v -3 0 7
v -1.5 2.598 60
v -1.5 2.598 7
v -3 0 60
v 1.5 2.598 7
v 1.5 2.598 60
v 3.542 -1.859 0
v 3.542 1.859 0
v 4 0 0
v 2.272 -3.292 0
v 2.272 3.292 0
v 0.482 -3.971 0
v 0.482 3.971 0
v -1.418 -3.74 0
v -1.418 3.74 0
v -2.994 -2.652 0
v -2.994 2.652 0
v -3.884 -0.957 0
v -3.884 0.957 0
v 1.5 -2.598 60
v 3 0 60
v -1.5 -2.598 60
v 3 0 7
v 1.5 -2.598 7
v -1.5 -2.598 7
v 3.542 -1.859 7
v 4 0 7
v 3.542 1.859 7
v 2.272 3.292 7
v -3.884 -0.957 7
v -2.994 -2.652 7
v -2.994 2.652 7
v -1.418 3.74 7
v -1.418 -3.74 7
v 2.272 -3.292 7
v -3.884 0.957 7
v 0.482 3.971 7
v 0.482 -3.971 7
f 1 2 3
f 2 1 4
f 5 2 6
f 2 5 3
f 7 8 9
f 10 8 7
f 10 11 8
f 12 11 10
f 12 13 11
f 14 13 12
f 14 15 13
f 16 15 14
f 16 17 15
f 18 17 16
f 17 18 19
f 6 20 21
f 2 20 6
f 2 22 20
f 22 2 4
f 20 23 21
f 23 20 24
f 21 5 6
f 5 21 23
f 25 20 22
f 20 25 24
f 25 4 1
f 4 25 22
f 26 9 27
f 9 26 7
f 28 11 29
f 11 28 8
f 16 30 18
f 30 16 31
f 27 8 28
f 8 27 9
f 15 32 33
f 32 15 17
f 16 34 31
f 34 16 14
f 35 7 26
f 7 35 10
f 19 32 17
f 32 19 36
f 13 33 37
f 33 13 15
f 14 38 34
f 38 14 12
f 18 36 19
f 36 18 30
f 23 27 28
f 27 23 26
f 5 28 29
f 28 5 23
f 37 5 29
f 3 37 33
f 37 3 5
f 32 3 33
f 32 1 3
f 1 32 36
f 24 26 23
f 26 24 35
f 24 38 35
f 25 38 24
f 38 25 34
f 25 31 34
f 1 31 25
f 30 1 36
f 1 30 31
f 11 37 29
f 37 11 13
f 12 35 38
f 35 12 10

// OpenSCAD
module turn_key(){
    linear_extrude(height=60) circle($fn=6, d=6);//tall rod
    linear_extrude(height=7) circle(d=8); //wider bottom portion
}

turn_key();
